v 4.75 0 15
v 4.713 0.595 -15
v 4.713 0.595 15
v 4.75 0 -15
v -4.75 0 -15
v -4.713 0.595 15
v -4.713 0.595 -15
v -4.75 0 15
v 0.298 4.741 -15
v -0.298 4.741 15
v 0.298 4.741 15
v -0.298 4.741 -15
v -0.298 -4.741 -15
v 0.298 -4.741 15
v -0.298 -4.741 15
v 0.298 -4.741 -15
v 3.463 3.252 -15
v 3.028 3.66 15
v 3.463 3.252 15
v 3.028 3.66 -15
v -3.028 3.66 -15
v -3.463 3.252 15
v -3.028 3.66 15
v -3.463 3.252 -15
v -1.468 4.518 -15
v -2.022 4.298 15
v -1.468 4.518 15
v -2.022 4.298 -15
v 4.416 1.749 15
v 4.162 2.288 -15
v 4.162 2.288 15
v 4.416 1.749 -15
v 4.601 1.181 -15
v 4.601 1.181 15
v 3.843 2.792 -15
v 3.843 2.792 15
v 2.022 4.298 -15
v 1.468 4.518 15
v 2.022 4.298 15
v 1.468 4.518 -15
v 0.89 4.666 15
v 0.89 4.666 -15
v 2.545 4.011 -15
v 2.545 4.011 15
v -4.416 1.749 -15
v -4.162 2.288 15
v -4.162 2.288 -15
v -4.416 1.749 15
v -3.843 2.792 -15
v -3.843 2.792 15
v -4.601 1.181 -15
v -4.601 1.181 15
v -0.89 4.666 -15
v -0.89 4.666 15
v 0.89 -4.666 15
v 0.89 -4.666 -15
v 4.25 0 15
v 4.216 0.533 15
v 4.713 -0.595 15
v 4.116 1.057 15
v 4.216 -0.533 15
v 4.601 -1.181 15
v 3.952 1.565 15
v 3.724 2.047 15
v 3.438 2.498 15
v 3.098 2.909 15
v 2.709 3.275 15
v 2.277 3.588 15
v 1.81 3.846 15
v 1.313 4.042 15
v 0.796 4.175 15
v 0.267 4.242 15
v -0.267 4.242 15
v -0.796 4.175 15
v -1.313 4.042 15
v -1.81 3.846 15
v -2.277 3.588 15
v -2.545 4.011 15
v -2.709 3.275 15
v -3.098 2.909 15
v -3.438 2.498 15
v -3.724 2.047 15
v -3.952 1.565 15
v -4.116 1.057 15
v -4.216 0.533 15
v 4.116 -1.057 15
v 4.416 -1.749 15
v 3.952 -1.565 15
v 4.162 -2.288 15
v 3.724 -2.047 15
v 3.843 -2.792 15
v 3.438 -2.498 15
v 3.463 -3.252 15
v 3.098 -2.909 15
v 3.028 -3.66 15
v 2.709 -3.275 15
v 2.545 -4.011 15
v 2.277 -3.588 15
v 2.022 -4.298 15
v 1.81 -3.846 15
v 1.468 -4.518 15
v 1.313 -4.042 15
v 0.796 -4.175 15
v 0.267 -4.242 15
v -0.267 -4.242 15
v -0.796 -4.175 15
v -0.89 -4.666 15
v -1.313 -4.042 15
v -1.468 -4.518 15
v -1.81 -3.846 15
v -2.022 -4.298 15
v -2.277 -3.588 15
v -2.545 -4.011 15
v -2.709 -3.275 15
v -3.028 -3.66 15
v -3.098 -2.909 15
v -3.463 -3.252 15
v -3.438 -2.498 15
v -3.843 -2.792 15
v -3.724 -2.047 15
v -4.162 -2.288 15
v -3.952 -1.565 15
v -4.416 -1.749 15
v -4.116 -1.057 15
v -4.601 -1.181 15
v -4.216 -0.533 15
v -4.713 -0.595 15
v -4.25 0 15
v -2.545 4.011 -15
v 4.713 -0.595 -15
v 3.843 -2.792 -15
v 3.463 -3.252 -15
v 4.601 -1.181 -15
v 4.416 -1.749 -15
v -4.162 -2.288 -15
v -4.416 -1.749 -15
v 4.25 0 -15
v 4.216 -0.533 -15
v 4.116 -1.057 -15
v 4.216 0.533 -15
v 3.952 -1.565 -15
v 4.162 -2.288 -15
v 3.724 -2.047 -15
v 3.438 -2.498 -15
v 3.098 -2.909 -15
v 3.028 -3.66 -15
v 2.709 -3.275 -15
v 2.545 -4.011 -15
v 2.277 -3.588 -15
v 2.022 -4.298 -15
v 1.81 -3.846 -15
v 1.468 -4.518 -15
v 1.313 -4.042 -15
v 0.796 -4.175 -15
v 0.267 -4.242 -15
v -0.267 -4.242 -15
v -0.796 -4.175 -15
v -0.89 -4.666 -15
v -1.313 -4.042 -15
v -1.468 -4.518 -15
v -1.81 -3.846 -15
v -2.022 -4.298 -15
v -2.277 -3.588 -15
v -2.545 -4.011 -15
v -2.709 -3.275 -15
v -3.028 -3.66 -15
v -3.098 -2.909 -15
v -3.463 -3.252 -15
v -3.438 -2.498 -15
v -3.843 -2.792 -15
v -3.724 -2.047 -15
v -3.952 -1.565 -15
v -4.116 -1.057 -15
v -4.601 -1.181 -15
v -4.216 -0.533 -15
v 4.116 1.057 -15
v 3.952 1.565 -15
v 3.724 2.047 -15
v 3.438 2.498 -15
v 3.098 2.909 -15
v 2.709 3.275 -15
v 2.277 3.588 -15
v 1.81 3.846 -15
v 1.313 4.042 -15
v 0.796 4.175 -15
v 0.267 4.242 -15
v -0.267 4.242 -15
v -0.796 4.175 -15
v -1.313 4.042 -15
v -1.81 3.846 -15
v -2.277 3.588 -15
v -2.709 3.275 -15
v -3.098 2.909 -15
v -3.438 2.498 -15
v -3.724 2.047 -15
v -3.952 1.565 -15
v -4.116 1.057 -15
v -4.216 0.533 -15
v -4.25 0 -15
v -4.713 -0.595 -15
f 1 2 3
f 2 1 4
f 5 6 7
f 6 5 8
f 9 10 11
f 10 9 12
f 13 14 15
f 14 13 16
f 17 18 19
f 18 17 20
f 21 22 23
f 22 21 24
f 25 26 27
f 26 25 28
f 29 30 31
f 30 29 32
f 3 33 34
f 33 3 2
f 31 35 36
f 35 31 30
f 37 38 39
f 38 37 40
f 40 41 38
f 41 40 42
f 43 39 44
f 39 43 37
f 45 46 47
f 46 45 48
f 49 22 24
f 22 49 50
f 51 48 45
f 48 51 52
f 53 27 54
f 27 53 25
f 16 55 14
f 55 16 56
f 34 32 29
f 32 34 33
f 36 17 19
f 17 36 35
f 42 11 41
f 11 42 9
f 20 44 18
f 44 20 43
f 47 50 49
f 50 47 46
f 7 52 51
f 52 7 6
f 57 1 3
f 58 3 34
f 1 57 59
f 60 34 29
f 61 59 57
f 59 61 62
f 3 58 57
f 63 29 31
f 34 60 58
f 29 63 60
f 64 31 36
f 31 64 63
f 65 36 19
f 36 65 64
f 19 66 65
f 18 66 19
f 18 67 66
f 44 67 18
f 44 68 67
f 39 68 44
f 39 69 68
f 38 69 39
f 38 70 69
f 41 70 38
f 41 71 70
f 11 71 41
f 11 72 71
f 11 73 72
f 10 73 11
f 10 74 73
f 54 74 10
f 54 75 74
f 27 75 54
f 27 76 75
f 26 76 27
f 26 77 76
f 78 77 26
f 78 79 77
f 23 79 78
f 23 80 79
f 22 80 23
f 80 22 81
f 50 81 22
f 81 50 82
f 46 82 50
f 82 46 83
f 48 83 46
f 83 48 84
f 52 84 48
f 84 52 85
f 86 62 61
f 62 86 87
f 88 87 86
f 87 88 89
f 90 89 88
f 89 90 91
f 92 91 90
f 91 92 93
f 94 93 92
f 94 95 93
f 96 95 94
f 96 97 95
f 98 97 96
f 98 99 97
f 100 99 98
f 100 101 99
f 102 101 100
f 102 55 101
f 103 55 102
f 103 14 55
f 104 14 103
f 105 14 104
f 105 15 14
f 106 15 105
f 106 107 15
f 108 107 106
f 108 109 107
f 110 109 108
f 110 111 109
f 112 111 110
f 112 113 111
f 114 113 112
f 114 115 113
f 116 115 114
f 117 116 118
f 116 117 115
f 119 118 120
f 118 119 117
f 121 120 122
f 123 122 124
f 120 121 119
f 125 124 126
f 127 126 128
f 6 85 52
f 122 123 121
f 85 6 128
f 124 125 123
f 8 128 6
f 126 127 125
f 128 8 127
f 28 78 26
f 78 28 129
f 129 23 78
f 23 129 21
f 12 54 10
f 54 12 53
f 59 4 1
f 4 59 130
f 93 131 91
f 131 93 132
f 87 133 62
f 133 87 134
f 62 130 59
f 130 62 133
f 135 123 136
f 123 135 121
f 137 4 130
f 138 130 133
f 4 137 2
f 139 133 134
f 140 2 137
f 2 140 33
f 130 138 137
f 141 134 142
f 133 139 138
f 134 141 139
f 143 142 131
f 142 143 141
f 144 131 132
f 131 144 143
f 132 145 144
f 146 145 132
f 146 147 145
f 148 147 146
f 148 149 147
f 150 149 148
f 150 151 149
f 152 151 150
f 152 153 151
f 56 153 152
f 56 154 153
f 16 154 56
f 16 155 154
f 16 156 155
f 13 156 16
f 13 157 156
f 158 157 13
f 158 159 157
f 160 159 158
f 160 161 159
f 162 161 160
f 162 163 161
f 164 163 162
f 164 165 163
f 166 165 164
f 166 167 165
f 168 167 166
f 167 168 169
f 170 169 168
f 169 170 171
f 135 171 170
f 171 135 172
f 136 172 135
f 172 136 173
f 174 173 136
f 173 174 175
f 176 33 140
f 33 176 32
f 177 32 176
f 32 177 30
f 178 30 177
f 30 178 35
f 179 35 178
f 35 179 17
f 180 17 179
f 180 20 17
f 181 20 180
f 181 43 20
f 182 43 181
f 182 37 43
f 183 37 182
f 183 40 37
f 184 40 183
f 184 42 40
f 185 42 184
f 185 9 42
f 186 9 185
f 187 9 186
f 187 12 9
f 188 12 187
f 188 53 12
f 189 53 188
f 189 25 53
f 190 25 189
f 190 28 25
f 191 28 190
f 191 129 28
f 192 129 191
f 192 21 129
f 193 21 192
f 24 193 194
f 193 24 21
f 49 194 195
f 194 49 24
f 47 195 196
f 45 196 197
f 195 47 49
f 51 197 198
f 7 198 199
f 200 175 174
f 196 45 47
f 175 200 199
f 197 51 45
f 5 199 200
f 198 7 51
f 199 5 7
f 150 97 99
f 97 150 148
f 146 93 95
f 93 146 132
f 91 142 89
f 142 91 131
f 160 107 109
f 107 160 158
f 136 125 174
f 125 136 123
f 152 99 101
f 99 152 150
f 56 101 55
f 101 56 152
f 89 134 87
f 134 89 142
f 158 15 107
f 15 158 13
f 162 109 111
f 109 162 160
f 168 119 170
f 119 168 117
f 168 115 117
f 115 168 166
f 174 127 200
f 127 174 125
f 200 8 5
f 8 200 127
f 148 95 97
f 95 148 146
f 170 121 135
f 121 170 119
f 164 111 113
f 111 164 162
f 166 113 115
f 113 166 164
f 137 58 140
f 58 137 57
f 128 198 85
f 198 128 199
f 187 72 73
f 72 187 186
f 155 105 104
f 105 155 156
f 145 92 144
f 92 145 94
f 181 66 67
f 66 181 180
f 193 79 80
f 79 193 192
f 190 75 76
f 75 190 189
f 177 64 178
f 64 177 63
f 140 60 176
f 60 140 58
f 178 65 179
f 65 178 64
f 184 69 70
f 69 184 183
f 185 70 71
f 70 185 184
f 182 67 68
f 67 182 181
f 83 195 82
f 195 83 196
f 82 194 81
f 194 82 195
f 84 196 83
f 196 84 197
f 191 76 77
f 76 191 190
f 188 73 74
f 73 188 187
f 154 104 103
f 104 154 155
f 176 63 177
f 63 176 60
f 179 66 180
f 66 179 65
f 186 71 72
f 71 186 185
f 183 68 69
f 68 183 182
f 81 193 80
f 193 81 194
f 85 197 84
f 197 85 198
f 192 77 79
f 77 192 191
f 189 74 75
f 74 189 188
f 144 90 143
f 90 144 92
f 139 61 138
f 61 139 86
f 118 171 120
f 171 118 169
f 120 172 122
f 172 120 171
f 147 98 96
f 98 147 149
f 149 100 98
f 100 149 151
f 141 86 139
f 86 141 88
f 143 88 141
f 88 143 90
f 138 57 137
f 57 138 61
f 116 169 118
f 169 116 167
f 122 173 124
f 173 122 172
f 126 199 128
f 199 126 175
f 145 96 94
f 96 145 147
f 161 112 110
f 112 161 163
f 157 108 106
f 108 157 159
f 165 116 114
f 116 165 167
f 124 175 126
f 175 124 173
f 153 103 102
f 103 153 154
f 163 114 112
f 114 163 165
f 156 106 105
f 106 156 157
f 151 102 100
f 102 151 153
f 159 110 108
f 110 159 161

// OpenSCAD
$fn = 50;


difference() {
	union() {
		translate(v = [0, 0, -15.0000000000]) {
			cylinder(h = 30, r = 4.7500000000);
		}
	}
	union() {
		translate(v = [0, 0, -100.0000000000]) {
			cylinder(h = 200, r = 4.2500000000);
		}
	}
}
